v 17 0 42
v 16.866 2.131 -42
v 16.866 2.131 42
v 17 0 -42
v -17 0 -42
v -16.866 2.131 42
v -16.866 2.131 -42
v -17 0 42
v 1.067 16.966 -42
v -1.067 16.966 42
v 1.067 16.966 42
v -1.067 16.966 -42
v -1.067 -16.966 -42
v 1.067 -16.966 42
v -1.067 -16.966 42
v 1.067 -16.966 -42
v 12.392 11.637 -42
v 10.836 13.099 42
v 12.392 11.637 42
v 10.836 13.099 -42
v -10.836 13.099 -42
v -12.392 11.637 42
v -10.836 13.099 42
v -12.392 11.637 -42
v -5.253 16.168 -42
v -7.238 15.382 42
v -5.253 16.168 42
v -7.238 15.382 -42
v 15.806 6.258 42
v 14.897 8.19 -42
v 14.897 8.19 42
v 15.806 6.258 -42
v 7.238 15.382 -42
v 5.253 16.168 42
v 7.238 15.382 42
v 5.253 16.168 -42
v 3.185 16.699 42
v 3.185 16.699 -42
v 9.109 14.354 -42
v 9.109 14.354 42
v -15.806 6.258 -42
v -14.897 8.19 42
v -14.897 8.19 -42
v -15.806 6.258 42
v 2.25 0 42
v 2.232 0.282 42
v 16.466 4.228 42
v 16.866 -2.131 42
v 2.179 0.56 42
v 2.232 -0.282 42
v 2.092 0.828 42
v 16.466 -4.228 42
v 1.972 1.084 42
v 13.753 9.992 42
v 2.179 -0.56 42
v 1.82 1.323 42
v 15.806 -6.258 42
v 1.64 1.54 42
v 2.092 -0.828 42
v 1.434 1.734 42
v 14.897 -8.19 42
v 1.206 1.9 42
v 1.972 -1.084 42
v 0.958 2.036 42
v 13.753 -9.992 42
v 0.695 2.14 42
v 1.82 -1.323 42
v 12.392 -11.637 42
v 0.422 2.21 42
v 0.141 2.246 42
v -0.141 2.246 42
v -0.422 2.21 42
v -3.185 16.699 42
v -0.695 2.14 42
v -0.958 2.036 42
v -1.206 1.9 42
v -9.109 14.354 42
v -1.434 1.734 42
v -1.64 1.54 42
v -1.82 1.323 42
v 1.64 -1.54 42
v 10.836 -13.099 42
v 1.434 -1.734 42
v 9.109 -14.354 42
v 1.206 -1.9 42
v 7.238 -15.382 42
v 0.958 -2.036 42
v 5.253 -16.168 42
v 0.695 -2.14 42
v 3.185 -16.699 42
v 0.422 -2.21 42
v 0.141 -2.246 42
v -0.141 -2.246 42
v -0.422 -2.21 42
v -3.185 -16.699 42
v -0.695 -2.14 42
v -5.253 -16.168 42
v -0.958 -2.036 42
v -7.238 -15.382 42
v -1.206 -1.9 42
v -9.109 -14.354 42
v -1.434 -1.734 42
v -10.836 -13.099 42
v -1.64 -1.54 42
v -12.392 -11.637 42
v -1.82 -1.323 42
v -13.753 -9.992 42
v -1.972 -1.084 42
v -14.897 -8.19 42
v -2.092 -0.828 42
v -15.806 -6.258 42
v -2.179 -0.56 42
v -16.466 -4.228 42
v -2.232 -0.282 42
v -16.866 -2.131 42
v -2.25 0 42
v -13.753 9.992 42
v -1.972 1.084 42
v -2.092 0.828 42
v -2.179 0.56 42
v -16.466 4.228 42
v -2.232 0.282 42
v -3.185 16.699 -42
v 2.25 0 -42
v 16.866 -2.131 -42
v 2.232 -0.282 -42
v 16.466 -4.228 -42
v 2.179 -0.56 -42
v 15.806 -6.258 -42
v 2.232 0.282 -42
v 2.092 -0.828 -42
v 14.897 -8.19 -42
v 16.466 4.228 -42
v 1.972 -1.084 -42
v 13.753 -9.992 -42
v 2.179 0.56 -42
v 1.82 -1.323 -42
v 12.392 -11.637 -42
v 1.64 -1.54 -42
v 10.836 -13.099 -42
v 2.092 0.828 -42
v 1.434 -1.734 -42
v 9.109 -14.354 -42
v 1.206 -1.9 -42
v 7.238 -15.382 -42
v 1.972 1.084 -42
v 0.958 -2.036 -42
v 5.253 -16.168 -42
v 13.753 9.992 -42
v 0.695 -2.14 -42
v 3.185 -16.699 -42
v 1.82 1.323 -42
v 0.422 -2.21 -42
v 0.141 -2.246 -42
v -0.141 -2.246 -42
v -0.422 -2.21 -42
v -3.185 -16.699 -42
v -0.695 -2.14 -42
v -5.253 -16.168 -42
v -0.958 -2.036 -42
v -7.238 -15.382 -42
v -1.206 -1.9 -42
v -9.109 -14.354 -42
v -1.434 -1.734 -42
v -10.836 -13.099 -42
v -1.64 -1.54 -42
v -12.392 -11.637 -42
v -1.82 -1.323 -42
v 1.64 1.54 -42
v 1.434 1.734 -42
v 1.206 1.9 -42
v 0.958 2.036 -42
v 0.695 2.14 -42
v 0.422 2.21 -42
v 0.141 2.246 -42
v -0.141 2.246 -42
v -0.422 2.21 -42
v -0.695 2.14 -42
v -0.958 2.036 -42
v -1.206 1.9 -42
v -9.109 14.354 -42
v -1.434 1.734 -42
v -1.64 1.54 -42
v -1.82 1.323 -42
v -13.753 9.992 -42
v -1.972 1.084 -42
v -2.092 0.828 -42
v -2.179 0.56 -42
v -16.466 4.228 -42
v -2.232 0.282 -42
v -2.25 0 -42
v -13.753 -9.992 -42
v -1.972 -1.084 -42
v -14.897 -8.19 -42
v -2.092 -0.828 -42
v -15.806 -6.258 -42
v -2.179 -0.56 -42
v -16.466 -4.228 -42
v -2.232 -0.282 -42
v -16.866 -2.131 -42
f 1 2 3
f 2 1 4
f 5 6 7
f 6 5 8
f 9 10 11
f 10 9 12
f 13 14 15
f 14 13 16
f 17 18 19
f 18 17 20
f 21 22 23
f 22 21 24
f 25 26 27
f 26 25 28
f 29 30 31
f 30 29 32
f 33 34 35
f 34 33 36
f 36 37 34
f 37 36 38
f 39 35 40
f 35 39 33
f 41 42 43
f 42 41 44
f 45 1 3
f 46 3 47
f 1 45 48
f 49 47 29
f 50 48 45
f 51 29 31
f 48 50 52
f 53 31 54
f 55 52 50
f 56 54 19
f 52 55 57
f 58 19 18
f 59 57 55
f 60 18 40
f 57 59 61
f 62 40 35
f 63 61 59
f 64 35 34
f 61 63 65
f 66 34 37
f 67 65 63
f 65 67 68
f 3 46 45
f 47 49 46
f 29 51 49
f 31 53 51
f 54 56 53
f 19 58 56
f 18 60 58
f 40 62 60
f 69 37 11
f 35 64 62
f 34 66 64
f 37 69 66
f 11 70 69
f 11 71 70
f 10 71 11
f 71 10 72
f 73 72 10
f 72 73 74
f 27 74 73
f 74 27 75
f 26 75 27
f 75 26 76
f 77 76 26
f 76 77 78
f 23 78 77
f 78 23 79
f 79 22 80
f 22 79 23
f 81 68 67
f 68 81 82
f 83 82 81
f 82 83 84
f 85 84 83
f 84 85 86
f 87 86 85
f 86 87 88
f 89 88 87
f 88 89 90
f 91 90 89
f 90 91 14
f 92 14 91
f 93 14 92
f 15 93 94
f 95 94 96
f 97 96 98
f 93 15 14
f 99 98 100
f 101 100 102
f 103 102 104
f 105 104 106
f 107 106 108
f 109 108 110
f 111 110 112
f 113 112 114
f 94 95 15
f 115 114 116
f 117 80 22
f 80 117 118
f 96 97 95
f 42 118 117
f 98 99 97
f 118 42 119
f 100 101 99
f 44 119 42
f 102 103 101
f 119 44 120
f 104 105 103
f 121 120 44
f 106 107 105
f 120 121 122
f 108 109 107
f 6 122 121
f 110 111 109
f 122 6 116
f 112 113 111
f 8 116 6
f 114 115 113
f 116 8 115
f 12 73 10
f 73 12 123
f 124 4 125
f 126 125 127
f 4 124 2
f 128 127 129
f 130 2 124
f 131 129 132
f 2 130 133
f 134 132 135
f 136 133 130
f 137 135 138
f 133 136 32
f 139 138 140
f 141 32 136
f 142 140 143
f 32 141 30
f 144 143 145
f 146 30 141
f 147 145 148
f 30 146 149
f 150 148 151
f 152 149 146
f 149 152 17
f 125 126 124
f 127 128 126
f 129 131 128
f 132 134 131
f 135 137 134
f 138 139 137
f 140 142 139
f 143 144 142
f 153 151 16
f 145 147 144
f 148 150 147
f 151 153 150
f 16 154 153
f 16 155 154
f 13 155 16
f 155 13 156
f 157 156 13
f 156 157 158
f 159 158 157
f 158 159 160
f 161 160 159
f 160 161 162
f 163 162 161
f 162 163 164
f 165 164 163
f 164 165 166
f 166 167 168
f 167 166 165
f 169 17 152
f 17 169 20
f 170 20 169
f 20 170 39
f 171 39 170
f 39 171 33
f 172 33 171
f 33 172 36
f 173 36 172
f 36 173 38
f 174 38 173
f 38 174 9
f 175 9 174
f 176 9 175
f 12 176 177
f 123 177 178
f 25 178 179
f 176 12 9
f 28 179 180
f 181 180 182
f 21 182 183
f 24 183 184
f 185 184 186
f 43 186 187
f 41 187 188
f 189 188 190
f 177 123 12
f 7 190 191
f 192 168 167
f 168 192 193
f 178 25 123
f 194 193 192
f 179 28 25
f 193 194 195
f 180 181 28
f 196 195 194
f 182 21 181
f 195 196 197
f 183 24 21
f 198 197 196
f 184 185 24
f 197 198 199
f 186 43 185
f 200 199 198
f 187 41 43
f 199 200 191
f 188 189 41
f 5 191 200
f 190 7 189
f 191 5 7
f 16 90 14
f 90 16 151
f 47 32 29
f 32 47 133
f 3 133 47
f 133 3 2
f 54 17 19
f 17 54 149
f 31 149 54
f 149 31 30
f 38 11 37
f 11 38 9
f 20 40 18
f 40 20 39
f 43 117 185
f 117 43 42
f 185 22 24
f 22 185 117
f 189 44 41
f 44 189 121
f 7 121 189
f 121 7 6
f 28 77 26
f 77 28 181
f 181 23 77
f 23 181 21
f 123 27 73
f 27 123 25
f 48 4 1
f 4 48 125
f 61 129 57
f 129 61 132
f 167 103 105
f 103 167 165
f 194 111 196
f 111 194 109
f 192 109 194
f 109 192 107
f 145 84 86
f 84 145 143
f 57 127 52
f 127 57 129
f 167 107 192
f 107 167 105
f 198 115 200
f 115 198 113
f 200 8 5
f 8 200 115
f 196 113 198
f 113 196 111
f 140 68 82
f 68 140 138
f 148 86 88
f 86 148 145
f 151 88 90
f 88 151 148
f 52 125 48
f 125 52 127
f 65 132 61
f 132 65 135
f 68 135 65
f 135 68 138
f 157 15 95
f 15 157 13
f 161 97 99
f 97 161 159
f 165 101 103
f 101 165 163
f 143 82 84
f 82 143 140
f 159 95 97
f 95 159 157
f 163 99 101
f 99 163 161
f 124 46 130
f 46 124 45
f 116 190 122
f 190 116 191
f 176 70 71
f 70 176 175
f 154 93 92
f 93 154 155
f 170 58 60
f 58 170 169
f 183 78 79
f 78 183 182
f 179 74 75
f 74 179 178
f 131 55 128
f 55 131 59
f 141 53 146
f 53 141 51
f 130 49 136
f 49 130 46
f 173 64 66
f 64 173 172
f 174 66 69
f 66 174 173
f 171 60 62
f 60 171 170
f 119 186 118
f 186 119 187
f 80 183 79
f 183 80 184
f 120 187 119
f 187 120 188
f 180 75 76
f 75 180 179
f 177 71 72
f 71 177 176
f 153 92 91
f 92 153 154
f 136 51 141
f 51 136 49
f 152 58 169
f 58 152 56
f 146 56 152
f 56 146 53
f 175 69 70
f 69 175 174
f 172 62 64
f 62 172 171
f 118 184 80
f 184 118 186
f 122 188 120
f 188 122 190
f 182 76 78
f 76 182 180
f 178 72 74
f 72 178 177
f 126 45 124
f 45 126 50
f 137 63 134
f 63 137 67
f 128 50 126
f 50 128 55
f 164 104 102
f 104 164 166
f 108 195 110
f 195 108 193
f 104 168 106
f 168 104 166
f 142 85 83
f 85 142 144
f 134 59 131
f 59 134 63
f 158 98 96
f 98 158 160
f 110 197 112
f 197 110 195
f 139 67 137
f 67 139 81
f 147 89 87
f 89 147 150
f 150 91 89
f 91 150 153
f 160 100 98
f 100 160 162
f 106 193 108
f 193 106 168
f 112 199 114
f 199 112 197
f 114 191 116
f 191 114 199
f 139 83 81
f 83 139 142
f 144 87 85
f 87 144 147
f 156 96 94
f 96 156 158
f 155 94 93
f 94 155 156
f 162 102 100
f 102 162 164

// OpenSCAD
$fn = 50;


difference() {
	union() {
		translate(v = [0, 0, -42.0000000000]) {
			cylinder(h = 84, r = 17.0000000000);
		}
	}
	union() {
		translate(v = [0, 0, -100.0000000000]) {
			cylinder(h = 200, r = 2.2500000000);
		}
	}
}
